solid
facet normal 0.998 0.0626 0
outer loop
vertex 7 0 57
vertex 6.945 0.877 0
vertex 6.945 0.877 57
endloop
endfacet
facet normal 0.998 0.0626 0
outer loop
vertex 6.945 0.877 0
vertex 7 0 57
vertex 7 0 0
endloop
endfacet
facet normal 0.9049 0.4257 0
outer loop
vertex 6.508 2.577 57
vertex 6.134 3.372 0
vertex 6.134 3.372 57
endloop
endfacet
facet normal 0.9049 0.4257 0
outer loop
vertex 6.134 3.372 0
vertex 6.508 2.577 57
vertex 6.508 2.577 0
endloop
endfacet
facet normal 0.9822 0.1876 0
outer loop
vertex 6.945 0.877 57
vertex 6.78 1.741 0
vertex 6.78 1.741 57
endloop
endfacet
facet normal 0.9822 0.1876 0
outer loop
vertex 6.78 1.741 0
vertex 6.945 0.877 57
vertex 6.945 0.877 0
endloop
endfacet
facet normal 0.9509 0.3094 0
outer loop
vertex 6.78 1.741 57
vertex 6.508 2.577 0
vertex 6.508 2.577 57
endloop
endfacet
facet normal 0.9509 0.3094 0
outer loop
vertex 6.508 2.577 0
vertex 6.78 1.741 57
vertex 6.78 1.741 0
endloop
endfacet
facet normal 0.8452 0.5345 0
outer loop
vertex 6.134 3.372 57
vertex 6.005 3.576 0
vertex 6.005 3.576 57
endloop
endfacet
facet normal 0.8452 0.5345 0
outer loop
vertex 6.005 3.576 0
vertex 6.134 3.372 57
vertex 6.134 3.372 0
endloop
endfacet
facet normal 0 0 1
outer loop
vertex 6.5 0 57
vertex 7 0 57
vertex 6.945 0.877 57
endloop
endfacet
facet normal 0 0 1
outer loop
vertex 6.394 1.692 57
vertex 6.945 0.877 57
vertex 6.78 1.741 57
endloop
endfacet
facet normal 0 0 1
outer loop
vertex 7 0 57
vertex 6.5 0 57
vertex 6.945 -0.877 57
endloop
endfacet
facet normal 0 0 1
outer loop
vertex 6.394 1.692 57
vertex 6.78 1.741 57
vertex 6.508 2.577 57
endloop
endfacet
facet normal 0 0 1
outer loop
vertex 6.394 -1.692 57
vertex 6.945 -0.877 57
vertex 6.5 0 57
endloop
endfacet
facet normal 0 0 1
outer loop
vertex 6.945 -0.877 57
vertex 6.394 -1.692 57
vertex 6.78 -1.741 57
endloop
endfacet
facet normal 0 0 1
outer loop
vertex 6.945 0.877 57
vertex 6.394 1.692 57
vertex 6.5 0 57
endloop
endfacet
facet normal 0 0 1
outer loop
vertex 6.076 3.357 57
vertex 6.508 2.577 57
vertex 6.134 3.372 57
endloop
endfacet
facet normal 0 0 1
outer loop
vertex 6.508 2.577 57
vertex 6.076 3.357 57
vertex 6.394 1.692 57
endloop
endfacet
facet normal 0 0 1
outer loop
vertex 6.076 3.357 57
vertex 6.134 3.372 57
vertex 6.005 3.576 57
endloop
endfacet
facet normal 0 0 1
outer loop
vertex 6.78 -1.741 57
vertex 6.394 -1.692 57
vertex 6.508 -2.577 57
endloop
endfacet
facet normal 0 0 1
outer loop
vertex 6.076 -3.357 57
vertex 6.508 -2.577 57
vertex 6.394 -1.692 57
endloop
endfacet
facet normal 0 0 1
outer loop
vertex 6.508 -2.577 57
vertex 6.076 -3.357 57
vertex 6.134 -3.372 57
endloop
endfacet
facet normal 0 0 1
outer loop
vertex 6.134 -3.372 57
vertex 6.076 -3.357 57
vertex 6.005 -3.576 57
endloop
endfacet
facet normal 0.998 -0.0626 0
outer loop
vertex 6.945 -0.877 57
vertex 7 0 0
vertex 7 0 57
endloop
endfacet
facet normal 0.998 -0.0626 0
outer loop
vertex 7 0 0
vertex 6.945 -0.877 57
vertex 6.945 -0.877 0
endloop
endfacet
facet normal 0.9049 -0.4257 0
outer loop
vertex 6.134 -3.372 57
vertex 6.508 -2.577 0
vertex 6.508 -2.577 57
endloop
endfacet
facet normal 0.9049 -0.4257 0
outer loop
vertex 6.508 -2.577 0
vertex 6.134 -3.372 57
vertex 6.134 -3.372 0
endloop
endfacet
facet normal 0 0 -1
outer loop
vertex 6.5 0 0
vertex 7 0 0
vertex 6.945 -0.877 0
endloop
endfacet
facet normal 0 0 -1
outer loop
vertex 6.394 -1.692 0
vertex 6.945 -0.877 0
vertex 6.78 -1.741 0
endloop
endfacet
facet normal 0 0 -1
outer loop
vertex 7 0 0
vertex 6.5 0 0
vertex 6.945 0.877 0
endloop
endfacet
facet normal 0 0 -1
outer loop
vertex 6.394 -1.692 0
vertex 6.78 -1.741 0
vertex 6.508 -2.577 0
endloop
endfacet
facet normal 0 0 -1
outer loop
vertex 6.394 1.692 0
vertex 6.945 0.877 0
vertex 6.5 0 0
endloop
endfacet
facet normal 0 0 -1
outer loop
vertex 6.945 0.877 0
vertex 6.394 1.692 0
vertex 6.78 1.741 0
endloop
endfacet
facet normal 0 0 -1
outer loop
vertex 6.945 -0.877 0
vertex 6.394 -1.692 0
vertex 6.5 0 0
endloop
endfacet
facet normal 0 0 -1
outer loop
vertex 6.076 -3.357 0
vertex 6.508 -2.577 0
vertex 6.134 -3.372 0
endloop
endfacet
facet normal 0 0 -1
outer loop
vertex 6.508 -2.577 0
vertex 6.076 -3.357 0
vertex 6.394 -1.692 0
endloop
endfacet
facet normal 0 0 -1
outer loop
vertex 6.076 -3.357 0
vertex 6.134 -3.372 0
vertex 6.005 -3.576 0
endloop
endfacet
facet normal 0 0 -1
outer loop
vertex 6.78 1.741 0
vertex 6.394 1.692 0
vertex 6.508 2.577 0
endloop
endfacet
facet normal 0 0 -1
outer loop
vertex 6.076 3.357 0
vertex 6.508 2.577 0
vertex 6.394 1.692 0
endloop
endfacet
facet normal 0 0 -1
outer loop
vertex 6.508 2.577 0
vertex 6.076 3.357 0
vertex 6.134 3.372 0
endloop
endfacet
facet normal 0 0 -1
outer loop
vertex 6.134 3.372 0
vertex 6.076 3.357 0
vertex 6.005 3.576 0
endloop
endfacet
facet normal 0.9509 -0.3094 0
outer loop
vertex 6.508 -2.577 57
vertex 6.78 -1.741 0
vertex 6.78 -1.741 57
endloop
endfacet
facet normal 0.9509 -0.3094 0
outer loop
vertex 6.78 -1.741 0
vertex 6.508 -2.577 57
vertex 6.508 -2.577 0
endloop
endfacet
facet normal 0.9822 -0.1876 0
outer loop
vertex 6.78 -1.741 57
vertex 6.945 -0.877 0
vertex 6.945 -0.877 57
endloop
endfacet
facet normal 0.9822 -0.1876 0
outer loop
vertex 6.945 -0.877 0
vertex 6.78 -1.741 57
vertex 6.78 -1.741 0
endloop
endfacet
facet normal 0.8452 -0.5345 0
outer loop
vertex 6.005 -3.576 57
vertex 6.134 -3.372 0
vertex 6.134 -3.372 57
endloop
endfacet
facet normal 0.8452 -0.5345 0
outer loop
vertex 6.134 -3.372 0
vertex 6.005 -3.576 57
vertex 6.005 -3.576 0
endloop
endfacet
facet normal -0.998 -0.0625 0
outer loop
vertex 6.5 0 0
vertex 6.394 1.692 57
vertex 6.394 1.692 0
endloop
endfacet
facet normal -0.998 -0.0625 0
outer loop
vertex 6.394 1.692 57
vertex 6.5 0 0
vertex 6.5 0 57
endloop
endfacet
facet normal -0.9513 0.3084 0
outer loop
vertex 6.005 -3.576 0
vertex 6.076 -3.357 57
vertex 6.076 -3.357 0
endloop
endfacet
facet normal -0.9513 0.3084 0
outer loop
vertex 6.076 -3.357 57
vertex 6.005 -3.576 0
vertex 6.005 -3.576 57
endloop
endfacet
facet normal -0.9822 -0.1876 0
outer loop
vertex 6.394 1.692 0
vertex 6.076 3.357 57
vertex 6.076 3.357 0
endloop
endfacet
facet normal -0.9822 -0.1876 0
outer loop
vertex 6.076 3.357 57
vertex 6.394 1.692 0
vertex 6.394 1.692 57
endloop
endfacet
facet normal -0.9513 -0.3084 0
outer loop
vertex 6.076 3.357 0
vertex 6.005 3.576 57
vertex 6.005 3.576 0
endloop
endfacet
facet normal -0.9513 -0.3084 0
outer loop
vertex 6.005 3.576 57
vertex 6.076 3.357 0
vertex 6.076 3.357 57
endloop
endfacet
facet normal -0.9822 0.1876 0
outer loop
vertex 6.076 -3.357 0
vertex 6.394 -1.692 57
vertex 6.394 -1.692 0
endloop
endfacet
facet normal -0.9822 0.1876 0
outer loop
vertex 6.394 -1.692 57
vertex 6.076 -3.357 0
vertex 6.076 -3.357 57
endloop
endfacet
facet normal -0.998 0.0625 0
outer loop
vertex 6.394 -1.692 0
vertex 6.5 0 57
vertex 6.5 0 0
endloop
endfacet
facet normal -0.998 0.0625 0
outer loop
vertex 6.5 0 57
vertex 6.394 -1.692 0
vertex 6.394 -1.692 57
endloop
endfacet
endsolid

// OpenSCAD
$fn = 50;


difference() {
	union() {
		cylinder(h = 57, r = 7.0000000000);
		translate(v = [-10.0000000000, 0, 0]) {
			cylinder(h = 57, r = 7.0000000000);
		}
	}
	union() {
		cylinder(h = 57, r = 3.2500000000);
		cylinder(h = 57, r = 1.8000000000);
		cylinder(h = 57, r = 1.8000000000);
		cylinder(h = 57, r = 1.8000000000);
		translate(v = [-14.5000000000, 0, 0]) {
			hull() {
				translate(v = [-3.7500000000, 0.0000000000, 0]) {
					cylinder(h = 57, r = 10.5000000000);
				}
				translate(v = [3.7500000000, 0.0000000000, 0]) {
					cylinder(h = 57, r = 10.5000000000);
				}
				translate(v = [-3.7500000000, -0.0000000000, 0]) {
					cylinder(h = 57, r = 10.5000000000);
				}
				translate(v = [3.7500000000, -0.0000000000, 0]) {
					cylinder(h = 57, r = 10.5000000000);
				}
			}
		}
		translate(v = [-7.0000000000, 0, 0.0000000000]) {
			cylinder(h = 57, r = 13.5000000000);
		}
	}
}
